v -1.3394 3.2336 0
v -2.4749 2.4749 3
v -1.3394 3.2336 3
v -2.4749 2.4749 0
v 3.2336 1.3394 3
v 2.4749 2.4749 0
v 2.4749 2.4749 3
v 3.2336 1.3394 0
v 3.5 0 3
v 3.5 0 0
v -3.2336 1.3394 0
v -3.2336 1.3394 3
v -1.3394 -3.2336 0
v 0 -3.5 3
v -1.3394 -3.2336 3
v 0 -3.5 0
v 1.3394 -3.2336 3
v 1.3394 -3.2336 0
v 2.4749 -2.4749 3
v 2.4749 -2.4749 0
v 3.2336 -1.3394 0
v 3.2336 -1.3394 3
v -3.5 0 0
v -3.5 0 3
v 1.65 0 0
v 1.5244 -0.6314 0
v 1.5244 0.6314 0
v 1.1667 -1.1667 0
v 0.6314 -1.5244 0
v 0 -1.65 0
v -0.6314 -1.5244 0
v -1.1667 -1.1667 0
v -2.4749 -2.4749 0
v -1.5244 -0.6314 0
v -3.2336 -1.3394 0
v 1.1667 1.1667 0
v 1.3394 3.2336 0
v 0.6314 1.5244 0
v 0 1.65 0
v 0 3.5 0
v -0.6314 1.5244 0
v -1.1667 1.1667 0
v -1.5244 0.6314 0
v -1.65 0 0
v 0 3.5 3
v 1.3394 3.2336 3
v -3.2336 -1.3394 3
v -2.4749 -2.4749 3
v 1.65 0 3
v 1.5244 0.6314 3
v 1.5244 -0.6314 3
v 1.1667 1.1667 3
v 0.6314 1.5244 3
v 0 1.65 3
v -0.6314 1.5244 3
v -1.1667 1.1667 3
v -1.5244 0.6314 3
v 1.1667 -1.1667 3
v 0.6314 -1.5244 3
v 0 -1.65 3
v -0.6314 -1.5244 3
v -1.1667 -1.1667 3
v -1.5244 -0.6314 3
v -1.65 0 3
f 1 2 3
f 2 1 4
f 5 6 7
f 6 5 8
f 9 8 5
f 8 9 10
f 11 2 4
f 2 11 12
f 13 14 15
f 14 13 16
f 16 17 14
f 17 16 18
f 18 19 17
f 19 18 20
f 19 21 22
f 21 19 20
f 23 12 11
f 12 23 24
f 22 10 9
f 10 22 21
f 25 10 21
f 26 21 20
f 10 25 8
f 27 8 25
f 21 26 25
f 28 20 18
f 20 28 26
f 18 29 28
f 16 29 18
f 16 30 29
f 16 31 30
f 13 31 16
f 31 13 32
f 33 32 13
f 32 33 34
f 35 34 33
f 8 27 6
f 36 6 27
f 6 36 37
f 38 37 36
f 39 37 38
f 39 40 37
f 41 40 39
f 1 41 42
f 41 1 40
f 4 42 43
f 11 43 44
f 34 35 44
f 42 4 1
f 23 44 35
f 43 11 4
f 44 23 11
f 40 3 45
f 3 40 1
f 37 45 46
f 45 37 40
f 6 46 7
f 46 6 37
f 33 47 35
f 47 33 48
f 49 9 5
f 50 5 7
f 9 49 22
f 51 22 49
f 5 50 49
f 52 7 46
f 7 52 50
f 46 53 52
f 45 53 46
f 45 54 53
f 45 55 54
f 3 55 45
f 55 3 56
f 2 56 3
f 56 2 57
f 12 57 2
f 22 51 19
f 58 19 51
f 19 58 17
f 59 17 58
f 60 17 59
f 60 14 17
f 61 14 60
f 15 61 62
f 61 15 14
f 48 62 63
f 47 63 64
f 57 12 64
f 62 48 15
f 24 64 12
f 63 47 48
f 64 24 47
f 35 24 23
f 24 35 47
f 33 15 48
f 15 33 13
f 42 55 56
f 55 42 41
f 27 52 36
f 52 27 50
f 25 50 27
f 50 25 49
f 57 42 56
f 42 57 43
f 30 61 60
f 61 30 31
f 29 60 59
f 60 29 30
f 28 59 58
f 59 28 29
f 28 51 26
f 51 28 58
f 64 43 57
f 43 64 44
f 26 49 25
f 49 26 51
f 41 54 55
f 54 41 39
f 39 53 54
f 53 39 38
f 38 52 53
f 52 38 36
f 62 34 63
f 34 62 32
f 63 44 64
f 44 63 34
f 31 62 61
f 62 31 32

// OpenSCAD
dO=7;
dI=3.3;
h=3;
$fn=16;
difference(){
  cylinder(d=dO,h=h);
  cylinder(d=dI,h=h*3, center=true);
}
